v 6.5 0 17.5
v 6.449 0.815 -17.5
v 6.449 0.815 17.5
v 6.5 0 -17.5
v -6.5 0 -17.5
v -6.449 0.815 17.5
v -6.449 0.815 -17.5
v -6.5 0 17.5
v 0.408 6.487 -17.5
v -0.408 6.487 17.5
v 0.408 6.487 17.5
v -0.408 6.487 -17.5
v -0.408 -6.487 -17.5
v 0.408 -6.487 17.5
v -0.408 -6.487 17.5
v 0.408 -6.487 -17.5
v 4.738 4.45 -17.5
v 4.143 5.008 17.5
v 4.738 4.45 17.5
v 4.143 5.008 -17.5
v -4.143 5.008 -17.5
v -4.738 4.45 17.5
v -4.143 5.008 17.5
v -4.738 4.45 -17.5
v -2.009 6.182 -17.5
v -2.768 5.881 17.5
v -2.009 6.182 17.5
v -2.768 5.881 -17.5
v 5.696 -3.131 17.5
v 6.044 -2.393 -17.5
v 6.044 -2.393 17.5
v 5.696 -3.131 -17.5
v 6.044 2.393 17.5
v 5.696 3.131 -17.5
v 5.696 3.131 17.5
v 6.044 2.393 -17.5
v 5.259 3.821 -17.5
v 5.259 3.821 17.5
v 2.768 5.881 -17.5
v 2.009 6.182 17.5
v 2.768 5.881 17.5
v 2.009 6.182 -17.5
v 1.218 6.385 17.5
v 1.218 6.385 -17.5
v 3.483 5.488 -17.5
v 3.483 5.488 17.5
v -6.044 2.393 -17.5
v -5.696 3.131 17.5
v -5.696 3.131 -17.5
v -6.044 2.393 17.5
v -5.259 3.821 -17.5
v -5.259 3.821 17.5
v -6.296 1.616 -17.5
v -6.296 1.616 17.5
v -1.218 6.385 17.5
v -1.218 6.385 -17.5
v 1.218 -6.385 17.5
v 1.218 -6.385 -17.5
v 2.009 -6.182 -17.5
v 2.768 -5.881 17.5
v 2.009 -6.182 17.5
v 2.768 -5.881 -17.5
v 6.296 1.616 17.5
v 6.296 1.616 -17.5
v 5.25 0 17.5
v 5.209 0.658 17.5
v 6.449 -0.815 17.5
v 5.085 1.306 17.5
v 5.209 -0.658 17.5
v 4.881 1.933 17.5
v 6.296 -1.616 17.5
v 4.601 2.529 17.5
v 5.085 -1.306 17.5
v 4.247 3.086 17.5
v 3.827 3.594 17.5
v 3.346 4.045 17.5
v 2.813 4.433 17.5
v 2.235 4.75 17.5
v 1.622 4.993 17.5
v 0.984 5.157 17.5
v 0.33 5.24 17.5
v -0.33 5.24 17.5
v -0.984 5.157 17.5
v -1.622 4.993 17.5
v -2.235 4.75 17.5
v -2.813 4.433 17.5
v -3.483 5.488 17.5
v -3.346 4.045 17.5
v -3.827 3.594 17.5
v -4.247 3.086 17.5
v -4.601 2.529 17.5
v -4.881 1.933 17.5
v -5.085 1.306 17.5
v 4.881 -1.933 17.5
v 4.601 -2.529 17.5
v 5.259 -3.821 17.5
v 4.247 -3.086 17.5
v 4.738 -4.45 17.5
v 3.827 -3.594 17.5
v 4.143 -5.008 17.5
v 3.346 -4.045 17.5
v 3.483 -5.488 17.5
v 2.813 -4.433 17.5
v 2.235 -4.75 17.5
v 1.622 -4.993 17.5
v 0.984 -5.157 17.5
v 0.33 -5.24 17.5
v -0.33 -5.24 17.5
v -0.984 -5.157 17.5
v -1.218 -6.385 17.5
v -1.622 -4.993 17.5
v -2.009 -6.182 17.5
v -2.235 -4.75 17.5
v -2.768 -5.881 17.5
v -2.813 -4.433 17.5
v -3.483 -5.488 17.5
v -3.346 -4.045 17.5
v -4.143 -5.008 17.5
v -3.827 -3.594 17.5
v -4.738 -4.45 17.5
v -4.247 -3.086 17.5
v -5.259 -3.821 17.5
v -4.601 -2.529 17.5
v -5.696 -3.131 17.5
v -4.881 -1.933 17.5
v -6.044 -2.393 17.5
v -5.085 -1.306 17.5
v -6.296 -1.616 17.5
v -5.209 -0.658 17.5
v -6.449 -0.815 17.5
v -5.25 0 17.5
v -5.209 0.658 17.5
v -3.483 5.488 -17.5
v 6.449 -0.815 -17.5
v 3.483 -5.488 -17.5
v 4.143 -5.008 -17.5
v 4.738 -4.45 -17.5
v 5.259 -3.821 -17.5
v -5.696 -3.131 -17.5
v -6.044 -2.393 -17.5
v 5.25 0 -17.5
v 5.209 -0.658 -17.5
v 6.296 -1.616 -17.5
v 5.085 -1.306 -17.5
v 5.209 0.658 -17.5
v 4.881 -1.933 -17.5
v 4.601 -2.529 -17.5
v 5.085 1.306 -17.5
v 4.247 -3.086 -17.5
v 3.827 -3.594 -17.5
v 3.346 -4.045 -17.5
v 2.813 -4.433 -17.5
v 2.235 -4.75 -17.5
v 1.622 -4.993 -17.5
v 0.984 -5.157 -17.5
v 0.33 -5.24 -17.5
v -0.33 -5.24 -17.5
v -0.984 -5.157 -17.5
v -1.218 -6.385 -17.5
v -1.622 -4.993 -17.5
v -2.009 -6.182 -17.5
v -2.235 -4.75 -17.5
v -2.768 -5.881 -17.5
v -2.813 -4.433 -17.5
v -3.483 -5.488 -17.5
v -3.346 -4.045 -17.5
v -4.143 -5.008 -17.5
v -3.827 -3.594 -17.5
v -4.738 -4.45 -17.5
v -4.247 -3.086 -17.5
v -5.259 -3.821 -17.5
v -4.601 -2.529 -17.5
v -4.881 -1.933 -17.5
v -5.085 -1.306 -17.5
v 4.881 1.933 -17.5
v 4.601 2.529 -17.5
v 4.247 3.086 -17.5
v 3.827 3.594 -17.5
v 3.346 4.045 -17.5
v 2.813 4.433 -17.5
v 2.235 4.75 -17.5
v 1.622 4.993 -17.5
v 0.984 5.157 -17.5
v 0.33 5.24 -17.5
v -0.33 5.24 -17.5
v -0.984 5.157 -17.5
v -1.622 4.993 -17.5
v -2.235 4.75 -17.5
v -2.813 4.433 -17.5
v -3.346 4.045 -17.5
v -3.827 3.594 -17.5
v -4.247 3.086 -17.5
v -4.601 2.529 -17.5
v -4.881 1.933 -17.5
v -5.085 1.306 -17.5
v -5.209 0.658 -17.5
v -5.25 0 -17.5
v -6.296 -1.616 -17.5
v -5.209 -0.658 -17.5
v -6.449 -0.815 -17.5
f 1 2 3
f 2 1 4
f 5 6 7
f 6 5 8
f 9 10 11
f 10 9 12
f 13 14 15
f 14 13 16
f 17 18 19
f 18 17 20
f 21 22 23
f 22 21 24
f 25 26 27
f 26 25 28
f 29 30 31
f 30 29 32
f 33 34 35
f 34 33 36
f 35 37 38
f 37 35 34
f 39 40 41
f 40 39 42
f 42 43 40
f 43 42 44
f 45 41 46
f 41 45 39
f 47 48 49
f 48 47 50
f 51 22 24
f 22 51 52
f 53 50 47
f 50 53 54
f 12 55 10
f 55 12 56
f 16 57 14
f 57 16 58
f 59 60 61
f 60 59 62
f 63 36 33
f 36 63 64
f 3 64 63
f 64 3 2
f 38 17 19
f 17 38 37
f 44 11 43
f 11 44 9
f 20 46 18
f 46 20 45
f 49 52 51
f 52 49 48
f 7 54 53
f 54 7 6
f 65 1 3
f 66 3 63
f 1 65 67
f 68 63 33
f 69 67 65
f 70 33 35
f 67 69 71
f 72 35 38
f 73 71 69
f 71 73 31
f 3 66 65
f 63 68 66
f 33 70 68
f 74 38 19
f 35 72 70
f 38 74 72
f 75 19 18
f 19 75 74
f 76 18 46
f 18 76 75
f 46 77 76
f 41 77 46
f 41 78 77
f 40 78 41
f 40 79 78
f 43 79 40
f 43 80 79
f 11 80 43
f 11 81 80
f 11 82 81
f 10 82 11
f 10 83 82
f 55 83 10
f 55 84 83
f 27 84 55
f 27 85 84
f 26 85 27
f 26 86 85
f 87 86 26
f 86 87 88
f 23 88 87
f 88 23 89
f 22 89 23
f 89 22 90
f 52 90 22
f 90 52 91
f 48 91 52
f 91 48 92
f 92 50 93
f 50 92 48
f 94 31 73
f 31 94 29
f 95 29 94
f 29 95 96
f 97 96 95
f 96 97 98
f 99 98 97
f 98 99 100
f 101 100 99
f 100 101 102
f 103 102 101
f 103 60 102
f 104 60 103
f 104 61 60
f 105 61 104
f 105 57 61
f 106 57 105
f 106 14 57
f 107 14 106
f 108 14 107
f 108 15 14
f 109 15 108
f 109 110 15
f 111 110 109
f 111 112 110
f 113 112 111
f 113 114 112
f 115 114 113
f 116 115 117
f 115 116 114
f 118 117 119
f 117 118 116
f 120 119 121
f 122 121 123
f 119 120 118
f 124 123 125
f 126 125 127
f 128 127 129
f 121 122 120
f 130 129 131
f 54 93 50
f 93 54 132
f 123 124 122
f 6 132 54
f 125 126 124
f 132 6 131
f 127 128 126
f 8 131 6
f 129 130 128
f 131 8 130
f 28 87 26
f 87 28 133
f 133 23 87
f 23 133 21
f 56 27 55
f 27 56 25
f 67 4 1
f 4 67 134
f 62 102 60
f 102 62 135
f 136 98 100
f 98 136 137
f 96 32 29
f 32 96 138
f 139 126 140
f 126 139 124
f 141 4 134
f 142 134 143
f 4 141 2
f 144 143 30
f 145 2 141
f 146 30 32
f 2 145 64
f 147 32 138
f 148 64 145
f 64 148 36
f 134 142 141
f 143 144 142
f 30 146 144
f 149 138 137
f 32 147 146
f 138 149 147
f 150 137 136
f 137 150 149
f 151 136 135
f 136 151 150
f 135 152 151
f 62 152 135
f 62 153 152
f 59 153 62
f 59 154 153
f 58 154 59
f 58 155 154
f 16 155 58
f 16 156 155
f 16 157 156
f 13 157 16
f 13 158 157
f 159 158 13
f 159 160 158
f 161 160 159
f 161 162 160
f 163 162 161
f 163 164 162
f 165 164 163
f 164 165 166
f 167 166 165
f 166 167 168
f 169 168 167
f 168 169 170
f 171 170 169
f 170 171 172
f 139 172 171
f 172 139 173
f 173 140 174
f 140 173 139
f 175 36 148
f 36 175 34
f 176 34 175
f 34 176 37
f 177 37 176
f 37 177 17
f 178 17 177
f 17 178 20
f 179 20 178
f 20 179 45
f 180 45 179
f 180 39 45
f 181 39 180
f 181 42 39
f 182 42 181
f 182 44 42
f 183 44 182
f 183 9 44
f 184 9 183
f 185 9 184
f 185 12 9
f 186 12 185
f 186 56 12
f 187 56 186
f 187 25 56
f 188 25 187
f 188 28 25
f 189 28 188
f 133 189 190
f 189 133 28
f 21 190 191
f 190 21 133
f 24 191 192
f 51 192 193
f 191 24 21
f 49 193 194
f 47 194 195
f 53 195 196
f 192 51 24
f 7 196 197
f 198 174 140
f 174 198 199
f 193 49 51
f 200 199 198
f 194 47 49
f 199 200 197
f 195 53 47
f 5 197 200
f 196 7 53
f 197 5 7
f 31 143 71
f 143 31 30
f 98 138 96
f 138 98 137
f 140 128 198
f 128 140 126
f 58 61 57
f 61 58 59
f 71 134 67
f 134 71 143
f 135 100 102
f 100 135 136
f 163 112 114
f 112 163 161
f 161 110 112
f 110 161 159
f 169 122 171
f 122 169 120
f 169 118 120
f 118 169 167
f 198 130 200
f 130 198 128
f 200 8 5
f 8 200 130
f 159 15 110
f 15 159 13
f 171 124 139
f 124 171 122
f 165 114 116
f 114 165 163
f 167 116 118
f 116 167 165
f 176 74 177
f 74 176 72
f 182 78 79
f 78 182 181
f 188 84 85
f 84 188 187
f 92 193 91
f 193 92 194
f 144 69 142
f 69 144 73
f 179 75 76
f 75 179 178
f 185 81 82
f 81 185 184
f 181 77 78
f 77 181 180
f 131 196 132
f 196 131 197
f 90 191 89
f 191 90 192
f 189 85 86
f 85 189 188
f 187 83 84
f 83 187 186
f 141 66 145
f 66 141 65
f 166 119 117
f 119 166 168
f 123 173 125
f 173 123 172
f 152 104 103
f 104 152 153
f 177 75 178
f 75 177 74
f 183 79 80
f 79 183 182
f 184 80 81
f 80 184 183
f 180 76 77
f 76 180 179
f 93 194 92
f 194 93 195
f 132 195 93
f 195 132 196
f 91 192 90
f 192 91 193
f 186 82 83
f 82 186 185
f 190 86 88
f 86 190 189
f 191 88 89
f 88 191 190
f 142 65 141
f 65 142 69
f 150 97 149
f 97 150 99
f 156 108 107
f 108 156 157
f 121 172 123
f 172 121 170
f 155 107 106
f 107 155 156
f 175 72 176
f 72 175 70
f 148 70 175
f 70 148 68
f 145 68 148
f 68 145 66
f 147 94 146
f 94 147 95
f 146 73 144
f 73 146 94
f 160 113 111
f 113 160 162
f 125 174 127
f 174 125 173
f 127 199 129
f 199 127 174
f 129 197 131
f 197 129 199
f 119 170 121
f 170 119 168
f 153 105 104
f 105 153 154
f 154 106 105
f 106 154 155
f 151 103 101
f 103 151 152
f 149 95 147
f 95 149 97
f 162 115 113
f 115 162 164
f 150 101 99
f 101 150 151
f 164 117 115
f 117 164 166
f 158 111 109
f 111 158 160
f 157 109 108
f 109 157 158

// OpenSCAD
$fn = 50;


difference() {
	union() {
		translate(v = [0, 0, -17.5000000000]) {
			cylinder(h = 35, r = 6.5000000000);
		}
	}
	union() {
		translate(v = [0, 0, -100.0000000000]) {
			cylinder(h = 200, r = 5.2500000000);
		}
	}
}
